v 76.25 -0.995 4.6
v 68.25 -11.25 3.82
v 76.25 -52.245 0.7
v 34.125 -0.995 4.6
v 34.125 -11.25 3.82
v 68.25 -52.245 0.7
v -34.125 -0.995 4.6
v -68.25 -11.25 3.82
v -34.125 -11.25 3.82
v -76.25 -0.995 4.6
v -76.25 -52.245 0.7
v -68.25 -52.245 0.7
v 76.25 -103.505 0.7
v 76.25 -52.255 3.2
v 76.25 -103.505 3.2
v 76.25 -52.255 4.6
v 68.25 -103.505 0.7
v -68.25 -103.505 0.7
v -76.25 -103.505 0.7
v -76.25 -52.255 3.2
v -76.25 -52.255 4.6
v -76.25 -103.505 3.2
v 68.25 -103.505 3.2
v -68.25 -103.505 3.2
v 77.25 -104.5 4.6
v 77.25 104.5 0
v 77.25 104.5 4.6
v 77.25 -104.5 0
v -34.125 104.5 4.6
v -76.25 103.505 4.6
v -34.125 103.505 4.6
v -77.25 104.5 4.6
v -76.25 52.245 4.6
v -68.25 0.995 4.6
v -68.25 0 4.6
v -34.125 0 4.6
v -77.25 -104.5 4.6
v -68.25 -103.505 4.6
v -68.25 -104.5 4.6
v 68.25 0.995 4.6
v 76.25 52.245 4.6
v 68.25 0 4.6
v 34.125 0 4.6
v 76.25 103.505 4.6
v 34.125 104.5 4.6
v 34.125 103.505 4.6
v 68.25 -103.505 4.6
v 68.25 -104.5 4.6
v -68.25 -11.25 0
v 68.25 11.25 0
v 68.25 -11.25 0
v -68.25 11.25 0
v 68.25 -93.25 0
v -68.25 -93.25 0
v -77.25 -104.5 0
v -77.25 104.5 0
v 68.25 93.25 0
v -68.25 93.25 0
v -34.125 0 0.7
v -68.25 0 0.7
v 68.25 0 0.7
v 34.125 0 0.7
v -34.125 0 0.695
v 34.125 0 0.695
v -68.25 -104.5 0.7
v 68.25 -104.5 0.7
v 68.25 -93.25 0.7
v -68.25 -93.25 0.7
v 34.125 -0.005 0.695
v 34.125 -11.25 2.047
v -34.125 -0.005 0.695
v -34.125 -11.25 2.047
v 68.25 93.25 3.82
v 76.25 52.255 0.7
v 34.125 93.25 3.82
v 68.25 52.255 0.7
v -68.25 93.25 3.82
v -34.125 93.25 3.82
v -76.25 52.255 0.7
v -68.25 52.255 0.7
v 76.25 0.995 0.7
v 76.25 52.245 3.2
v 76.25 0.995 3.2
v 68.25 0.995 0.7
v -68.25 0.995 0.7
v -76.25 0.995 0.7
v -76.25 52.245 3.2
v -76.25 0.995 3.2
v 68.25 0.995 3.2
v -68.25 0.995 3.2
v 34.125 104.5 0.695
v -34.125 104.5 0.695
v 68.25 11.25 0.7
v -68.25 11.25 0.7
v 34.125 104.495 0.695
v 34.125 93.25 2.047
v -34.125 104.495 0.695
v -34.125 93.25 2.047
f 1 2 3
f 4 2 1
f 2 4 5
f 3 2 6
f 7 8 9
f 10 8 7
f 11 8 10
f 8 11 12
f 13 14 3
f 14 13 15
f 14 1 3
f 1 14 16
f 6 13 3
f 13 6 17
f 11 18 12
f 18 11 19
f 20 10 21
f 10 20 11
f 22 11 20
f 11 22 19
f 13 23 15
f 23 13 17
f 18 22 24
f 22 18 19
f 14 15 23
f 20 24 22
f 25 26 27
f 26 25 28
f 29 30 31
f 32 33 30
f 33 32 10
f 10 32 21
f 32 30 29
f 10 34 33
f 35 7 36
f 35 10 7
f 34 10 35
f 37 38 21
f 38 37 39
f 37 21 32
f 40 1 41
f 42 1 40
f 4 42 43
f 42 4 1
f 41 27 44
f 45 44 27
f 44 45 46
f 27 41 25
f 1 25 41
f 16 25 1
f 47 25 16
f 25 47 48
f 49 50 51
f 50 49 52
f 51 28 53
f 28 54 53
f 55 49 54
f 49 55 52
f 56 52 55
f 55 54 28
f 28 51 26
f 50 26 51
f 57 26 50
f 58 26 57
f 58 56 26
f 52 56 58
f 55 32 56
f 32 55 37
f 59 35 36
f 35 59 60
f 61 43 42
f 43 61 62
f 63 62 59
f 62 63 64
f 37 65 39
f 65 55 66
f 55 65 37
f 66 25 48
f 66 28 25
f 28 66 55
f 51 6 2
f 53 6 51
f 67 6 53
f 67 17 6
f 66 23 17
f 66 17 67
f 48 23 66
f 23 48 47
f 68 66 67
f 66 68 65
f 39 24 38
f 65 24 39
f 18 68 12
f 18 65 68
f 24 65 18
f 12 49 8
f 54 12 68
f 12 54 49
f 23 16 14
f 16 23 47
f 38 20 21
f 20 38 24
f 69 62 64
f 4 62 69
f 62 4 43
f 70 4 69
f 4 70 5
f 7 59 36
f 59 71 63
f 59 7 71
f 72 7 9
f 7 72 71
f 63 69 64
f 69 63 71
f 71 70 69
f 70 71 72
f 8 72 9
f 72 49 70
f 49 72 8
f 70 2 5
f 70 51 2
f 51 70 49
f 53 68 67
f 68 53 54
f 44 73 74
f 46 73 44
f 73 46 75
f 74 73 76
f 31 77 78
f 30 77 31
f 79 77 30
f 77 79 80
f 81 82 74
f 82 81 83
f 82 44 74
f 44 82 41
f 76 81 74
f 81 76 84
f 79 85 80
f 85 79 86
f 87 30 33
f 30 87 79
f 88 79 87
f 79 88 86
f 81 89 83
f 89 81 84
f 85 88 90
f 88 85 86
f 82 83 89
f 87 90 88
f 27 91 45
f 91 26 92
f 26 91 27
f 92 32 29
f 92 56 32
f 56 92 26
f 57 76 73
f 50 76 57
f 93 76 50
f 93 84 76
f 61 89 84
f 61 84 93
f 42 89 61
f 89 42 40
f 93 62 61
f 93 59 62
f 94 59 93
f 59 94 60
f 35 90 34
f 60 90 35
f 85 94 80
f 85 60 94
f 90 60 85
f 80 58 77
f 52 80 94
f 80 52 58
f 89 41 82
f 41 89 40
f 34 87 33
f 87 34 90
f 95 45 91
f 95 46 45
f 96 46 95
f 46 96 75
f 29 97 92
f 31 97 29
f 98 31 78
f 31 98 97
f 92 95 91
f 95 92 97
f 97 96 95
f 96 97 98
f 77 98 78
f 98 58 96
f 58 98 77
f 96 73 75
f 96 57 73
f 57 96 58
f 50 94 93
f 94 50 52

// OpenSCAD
// Wall Mounted Single Card Holder
// By Brian Khuu 2022-04-22
// RevC : This revision is an optimiation for ease of pickup as well as being able to view cards behind a glass

print_layer_height = 0.2;

// Index Card
// 76 x 127mm (More like 126mm width when measured)
businesscard_width = 152.0+0.5; // 127mm (Plus 0.5 tol)
businesscard_height = 102.0+0.5; // 76mm (add 0.5mm tol)
businesscard_thickness = 2.5; // 0.25mm for thin paper cards. 0.8mm for thick plastic cards. We need to add extra thickness to account for layer droop

// Holder
wall_spacing = 2;
wall_card_grip = 16;
wall_x_count = 1; //2
wall_y_count = 2; //3

// Calc
wall_base = print_layer_height*3+0.1;
wall_top = print_layer_height*3+0.1;
wall_height = wall_base + businesscard_thickness + wall_top*2;

module cardSlopeOutline()
{
    hull()
    {
        slope_width = (businesscard_width-wall_card_grip)/2;
        translate([0,businesscard_height/2+1, wall_base])
        cube([slope_width, 0.01, 0.01], center = true);
        translate([0,businesscard_height/4,businesscard_thickness + wall_top*2])
        cube([slope_width, 0.01, 0.01], center = true);
    }
}

module cardWindowOutline()
{
    hull()
    {
        translate([0,businesscard_height/2,businesscard_thickness + wall_top*2])
        cube([businesscard_width, 0.01, 0.01], center = true);
        translate([0,0,0])
        cube([businesscard_width, 0.01, 0.01], center = true);
    }
    hull()
    {
        translate([0,0,businesscard_thickness + wall_top*2])
        cube([businesscard_width, 0.01, 0.01], center = true);
        translate([0,-businesscard_height/2,0])
        cube([businesscard_width-wall_card_grip, 0.01, 0.01], center = true);
    }
}

module cardholder(reducePlastic=false)
{
    if (0)
    translate([0,0,wall_base+businesscard_thickness])
        rotate([2,0,0])
        %cube([85, 54, 0.1], center = true);

    difference()
    {
        translate([0,0,wall_height/2])
            cube([businesscard_width+wall_spacing, businesscard_height+wall_spacing, wall_height], center = true);

        // Card Slide
        translate([0,0,wall_base])
        translate([0,0,businesscard_thickness/2])
        {
            // Upper
            hull()
            {
                translate([0,businesscard_height/2,businesscard_thickness + wall_top*2])
                cube([businesscard_width, 0.01, businesscard_thickness], center = true);

                translate([0,0,0])
                cube([businesscard_width, 0.01, businesscard_thickness], center = true);
            }
            // Lower
            hull()
            {
                translate([0,-businesscard_height/2,0])
                cube([businesscard_width, 0.01, businesscard_thickness], center = true);
                cube([businesscard_width, 0.01, businesscard_thickness], center = true);
            }
        }

        // Grip
        translate([0,0,wall_height/2+wall_base])
            hull()
            {
                translate([0,0,0])
                cube([businesscard_width-wall_card_grip, 0.01, wall_height], center = true);

                translate([0,-businesscard_height,0])
                cube([businesscard_width-wall_card_grip, 0.01, wall_height], center = true);
            }


        // Card Window
        translate([0,0,wall_base+businesscard_thickness/2])
        {
            hull()
            {
                // Card Window Base
                cardWindowOutline();
                // Card Window Top
                translate([0,0,businesscard_thickness + wall_top * 2])
                    cardWindowOutline();
            }
        }

        // Card Slope
        translate([0,0,0])
        {
            hull()
            {
                // Card Window Base
                cardSlopeOutline();
                // Card Window Top
                translate([0,0,businesscard_thickness + wall_top * 2])
                    cardSlopeOutline();
            }
        }

        // Reduce Plastic
        if (reducePlastic)
        translate([0,0,wall_base+businesscard_thickness/2+0.5])
        {
            cube([businesscard_width-wall_card_grip,businesscard_height*0.8, wall_height+1], center=true);
        }
    }
}

if (wall_x_count == 1 && wall_y_count == 1)
{
    cardholder(true);
}
else
{
    translate([-((businesscard_width+wall_spacing)*wall_x_count)/2,-((businesscard_height+wall_spacing)*wall_y_count)/2,0])
    {
        for (x = [0: 1 : wall_x_count-1])
            for (y = [0 : 1 : wall_y_count-1])
                translate([x*(businesscard_width+wall_spacing) + (businesscard_width+wall_spacing)/2, y*(businesscard_height+wall_spacing)+(businesscard_height+wall_spacing)/2, 0])
                        cardholder(true);
    }
}
